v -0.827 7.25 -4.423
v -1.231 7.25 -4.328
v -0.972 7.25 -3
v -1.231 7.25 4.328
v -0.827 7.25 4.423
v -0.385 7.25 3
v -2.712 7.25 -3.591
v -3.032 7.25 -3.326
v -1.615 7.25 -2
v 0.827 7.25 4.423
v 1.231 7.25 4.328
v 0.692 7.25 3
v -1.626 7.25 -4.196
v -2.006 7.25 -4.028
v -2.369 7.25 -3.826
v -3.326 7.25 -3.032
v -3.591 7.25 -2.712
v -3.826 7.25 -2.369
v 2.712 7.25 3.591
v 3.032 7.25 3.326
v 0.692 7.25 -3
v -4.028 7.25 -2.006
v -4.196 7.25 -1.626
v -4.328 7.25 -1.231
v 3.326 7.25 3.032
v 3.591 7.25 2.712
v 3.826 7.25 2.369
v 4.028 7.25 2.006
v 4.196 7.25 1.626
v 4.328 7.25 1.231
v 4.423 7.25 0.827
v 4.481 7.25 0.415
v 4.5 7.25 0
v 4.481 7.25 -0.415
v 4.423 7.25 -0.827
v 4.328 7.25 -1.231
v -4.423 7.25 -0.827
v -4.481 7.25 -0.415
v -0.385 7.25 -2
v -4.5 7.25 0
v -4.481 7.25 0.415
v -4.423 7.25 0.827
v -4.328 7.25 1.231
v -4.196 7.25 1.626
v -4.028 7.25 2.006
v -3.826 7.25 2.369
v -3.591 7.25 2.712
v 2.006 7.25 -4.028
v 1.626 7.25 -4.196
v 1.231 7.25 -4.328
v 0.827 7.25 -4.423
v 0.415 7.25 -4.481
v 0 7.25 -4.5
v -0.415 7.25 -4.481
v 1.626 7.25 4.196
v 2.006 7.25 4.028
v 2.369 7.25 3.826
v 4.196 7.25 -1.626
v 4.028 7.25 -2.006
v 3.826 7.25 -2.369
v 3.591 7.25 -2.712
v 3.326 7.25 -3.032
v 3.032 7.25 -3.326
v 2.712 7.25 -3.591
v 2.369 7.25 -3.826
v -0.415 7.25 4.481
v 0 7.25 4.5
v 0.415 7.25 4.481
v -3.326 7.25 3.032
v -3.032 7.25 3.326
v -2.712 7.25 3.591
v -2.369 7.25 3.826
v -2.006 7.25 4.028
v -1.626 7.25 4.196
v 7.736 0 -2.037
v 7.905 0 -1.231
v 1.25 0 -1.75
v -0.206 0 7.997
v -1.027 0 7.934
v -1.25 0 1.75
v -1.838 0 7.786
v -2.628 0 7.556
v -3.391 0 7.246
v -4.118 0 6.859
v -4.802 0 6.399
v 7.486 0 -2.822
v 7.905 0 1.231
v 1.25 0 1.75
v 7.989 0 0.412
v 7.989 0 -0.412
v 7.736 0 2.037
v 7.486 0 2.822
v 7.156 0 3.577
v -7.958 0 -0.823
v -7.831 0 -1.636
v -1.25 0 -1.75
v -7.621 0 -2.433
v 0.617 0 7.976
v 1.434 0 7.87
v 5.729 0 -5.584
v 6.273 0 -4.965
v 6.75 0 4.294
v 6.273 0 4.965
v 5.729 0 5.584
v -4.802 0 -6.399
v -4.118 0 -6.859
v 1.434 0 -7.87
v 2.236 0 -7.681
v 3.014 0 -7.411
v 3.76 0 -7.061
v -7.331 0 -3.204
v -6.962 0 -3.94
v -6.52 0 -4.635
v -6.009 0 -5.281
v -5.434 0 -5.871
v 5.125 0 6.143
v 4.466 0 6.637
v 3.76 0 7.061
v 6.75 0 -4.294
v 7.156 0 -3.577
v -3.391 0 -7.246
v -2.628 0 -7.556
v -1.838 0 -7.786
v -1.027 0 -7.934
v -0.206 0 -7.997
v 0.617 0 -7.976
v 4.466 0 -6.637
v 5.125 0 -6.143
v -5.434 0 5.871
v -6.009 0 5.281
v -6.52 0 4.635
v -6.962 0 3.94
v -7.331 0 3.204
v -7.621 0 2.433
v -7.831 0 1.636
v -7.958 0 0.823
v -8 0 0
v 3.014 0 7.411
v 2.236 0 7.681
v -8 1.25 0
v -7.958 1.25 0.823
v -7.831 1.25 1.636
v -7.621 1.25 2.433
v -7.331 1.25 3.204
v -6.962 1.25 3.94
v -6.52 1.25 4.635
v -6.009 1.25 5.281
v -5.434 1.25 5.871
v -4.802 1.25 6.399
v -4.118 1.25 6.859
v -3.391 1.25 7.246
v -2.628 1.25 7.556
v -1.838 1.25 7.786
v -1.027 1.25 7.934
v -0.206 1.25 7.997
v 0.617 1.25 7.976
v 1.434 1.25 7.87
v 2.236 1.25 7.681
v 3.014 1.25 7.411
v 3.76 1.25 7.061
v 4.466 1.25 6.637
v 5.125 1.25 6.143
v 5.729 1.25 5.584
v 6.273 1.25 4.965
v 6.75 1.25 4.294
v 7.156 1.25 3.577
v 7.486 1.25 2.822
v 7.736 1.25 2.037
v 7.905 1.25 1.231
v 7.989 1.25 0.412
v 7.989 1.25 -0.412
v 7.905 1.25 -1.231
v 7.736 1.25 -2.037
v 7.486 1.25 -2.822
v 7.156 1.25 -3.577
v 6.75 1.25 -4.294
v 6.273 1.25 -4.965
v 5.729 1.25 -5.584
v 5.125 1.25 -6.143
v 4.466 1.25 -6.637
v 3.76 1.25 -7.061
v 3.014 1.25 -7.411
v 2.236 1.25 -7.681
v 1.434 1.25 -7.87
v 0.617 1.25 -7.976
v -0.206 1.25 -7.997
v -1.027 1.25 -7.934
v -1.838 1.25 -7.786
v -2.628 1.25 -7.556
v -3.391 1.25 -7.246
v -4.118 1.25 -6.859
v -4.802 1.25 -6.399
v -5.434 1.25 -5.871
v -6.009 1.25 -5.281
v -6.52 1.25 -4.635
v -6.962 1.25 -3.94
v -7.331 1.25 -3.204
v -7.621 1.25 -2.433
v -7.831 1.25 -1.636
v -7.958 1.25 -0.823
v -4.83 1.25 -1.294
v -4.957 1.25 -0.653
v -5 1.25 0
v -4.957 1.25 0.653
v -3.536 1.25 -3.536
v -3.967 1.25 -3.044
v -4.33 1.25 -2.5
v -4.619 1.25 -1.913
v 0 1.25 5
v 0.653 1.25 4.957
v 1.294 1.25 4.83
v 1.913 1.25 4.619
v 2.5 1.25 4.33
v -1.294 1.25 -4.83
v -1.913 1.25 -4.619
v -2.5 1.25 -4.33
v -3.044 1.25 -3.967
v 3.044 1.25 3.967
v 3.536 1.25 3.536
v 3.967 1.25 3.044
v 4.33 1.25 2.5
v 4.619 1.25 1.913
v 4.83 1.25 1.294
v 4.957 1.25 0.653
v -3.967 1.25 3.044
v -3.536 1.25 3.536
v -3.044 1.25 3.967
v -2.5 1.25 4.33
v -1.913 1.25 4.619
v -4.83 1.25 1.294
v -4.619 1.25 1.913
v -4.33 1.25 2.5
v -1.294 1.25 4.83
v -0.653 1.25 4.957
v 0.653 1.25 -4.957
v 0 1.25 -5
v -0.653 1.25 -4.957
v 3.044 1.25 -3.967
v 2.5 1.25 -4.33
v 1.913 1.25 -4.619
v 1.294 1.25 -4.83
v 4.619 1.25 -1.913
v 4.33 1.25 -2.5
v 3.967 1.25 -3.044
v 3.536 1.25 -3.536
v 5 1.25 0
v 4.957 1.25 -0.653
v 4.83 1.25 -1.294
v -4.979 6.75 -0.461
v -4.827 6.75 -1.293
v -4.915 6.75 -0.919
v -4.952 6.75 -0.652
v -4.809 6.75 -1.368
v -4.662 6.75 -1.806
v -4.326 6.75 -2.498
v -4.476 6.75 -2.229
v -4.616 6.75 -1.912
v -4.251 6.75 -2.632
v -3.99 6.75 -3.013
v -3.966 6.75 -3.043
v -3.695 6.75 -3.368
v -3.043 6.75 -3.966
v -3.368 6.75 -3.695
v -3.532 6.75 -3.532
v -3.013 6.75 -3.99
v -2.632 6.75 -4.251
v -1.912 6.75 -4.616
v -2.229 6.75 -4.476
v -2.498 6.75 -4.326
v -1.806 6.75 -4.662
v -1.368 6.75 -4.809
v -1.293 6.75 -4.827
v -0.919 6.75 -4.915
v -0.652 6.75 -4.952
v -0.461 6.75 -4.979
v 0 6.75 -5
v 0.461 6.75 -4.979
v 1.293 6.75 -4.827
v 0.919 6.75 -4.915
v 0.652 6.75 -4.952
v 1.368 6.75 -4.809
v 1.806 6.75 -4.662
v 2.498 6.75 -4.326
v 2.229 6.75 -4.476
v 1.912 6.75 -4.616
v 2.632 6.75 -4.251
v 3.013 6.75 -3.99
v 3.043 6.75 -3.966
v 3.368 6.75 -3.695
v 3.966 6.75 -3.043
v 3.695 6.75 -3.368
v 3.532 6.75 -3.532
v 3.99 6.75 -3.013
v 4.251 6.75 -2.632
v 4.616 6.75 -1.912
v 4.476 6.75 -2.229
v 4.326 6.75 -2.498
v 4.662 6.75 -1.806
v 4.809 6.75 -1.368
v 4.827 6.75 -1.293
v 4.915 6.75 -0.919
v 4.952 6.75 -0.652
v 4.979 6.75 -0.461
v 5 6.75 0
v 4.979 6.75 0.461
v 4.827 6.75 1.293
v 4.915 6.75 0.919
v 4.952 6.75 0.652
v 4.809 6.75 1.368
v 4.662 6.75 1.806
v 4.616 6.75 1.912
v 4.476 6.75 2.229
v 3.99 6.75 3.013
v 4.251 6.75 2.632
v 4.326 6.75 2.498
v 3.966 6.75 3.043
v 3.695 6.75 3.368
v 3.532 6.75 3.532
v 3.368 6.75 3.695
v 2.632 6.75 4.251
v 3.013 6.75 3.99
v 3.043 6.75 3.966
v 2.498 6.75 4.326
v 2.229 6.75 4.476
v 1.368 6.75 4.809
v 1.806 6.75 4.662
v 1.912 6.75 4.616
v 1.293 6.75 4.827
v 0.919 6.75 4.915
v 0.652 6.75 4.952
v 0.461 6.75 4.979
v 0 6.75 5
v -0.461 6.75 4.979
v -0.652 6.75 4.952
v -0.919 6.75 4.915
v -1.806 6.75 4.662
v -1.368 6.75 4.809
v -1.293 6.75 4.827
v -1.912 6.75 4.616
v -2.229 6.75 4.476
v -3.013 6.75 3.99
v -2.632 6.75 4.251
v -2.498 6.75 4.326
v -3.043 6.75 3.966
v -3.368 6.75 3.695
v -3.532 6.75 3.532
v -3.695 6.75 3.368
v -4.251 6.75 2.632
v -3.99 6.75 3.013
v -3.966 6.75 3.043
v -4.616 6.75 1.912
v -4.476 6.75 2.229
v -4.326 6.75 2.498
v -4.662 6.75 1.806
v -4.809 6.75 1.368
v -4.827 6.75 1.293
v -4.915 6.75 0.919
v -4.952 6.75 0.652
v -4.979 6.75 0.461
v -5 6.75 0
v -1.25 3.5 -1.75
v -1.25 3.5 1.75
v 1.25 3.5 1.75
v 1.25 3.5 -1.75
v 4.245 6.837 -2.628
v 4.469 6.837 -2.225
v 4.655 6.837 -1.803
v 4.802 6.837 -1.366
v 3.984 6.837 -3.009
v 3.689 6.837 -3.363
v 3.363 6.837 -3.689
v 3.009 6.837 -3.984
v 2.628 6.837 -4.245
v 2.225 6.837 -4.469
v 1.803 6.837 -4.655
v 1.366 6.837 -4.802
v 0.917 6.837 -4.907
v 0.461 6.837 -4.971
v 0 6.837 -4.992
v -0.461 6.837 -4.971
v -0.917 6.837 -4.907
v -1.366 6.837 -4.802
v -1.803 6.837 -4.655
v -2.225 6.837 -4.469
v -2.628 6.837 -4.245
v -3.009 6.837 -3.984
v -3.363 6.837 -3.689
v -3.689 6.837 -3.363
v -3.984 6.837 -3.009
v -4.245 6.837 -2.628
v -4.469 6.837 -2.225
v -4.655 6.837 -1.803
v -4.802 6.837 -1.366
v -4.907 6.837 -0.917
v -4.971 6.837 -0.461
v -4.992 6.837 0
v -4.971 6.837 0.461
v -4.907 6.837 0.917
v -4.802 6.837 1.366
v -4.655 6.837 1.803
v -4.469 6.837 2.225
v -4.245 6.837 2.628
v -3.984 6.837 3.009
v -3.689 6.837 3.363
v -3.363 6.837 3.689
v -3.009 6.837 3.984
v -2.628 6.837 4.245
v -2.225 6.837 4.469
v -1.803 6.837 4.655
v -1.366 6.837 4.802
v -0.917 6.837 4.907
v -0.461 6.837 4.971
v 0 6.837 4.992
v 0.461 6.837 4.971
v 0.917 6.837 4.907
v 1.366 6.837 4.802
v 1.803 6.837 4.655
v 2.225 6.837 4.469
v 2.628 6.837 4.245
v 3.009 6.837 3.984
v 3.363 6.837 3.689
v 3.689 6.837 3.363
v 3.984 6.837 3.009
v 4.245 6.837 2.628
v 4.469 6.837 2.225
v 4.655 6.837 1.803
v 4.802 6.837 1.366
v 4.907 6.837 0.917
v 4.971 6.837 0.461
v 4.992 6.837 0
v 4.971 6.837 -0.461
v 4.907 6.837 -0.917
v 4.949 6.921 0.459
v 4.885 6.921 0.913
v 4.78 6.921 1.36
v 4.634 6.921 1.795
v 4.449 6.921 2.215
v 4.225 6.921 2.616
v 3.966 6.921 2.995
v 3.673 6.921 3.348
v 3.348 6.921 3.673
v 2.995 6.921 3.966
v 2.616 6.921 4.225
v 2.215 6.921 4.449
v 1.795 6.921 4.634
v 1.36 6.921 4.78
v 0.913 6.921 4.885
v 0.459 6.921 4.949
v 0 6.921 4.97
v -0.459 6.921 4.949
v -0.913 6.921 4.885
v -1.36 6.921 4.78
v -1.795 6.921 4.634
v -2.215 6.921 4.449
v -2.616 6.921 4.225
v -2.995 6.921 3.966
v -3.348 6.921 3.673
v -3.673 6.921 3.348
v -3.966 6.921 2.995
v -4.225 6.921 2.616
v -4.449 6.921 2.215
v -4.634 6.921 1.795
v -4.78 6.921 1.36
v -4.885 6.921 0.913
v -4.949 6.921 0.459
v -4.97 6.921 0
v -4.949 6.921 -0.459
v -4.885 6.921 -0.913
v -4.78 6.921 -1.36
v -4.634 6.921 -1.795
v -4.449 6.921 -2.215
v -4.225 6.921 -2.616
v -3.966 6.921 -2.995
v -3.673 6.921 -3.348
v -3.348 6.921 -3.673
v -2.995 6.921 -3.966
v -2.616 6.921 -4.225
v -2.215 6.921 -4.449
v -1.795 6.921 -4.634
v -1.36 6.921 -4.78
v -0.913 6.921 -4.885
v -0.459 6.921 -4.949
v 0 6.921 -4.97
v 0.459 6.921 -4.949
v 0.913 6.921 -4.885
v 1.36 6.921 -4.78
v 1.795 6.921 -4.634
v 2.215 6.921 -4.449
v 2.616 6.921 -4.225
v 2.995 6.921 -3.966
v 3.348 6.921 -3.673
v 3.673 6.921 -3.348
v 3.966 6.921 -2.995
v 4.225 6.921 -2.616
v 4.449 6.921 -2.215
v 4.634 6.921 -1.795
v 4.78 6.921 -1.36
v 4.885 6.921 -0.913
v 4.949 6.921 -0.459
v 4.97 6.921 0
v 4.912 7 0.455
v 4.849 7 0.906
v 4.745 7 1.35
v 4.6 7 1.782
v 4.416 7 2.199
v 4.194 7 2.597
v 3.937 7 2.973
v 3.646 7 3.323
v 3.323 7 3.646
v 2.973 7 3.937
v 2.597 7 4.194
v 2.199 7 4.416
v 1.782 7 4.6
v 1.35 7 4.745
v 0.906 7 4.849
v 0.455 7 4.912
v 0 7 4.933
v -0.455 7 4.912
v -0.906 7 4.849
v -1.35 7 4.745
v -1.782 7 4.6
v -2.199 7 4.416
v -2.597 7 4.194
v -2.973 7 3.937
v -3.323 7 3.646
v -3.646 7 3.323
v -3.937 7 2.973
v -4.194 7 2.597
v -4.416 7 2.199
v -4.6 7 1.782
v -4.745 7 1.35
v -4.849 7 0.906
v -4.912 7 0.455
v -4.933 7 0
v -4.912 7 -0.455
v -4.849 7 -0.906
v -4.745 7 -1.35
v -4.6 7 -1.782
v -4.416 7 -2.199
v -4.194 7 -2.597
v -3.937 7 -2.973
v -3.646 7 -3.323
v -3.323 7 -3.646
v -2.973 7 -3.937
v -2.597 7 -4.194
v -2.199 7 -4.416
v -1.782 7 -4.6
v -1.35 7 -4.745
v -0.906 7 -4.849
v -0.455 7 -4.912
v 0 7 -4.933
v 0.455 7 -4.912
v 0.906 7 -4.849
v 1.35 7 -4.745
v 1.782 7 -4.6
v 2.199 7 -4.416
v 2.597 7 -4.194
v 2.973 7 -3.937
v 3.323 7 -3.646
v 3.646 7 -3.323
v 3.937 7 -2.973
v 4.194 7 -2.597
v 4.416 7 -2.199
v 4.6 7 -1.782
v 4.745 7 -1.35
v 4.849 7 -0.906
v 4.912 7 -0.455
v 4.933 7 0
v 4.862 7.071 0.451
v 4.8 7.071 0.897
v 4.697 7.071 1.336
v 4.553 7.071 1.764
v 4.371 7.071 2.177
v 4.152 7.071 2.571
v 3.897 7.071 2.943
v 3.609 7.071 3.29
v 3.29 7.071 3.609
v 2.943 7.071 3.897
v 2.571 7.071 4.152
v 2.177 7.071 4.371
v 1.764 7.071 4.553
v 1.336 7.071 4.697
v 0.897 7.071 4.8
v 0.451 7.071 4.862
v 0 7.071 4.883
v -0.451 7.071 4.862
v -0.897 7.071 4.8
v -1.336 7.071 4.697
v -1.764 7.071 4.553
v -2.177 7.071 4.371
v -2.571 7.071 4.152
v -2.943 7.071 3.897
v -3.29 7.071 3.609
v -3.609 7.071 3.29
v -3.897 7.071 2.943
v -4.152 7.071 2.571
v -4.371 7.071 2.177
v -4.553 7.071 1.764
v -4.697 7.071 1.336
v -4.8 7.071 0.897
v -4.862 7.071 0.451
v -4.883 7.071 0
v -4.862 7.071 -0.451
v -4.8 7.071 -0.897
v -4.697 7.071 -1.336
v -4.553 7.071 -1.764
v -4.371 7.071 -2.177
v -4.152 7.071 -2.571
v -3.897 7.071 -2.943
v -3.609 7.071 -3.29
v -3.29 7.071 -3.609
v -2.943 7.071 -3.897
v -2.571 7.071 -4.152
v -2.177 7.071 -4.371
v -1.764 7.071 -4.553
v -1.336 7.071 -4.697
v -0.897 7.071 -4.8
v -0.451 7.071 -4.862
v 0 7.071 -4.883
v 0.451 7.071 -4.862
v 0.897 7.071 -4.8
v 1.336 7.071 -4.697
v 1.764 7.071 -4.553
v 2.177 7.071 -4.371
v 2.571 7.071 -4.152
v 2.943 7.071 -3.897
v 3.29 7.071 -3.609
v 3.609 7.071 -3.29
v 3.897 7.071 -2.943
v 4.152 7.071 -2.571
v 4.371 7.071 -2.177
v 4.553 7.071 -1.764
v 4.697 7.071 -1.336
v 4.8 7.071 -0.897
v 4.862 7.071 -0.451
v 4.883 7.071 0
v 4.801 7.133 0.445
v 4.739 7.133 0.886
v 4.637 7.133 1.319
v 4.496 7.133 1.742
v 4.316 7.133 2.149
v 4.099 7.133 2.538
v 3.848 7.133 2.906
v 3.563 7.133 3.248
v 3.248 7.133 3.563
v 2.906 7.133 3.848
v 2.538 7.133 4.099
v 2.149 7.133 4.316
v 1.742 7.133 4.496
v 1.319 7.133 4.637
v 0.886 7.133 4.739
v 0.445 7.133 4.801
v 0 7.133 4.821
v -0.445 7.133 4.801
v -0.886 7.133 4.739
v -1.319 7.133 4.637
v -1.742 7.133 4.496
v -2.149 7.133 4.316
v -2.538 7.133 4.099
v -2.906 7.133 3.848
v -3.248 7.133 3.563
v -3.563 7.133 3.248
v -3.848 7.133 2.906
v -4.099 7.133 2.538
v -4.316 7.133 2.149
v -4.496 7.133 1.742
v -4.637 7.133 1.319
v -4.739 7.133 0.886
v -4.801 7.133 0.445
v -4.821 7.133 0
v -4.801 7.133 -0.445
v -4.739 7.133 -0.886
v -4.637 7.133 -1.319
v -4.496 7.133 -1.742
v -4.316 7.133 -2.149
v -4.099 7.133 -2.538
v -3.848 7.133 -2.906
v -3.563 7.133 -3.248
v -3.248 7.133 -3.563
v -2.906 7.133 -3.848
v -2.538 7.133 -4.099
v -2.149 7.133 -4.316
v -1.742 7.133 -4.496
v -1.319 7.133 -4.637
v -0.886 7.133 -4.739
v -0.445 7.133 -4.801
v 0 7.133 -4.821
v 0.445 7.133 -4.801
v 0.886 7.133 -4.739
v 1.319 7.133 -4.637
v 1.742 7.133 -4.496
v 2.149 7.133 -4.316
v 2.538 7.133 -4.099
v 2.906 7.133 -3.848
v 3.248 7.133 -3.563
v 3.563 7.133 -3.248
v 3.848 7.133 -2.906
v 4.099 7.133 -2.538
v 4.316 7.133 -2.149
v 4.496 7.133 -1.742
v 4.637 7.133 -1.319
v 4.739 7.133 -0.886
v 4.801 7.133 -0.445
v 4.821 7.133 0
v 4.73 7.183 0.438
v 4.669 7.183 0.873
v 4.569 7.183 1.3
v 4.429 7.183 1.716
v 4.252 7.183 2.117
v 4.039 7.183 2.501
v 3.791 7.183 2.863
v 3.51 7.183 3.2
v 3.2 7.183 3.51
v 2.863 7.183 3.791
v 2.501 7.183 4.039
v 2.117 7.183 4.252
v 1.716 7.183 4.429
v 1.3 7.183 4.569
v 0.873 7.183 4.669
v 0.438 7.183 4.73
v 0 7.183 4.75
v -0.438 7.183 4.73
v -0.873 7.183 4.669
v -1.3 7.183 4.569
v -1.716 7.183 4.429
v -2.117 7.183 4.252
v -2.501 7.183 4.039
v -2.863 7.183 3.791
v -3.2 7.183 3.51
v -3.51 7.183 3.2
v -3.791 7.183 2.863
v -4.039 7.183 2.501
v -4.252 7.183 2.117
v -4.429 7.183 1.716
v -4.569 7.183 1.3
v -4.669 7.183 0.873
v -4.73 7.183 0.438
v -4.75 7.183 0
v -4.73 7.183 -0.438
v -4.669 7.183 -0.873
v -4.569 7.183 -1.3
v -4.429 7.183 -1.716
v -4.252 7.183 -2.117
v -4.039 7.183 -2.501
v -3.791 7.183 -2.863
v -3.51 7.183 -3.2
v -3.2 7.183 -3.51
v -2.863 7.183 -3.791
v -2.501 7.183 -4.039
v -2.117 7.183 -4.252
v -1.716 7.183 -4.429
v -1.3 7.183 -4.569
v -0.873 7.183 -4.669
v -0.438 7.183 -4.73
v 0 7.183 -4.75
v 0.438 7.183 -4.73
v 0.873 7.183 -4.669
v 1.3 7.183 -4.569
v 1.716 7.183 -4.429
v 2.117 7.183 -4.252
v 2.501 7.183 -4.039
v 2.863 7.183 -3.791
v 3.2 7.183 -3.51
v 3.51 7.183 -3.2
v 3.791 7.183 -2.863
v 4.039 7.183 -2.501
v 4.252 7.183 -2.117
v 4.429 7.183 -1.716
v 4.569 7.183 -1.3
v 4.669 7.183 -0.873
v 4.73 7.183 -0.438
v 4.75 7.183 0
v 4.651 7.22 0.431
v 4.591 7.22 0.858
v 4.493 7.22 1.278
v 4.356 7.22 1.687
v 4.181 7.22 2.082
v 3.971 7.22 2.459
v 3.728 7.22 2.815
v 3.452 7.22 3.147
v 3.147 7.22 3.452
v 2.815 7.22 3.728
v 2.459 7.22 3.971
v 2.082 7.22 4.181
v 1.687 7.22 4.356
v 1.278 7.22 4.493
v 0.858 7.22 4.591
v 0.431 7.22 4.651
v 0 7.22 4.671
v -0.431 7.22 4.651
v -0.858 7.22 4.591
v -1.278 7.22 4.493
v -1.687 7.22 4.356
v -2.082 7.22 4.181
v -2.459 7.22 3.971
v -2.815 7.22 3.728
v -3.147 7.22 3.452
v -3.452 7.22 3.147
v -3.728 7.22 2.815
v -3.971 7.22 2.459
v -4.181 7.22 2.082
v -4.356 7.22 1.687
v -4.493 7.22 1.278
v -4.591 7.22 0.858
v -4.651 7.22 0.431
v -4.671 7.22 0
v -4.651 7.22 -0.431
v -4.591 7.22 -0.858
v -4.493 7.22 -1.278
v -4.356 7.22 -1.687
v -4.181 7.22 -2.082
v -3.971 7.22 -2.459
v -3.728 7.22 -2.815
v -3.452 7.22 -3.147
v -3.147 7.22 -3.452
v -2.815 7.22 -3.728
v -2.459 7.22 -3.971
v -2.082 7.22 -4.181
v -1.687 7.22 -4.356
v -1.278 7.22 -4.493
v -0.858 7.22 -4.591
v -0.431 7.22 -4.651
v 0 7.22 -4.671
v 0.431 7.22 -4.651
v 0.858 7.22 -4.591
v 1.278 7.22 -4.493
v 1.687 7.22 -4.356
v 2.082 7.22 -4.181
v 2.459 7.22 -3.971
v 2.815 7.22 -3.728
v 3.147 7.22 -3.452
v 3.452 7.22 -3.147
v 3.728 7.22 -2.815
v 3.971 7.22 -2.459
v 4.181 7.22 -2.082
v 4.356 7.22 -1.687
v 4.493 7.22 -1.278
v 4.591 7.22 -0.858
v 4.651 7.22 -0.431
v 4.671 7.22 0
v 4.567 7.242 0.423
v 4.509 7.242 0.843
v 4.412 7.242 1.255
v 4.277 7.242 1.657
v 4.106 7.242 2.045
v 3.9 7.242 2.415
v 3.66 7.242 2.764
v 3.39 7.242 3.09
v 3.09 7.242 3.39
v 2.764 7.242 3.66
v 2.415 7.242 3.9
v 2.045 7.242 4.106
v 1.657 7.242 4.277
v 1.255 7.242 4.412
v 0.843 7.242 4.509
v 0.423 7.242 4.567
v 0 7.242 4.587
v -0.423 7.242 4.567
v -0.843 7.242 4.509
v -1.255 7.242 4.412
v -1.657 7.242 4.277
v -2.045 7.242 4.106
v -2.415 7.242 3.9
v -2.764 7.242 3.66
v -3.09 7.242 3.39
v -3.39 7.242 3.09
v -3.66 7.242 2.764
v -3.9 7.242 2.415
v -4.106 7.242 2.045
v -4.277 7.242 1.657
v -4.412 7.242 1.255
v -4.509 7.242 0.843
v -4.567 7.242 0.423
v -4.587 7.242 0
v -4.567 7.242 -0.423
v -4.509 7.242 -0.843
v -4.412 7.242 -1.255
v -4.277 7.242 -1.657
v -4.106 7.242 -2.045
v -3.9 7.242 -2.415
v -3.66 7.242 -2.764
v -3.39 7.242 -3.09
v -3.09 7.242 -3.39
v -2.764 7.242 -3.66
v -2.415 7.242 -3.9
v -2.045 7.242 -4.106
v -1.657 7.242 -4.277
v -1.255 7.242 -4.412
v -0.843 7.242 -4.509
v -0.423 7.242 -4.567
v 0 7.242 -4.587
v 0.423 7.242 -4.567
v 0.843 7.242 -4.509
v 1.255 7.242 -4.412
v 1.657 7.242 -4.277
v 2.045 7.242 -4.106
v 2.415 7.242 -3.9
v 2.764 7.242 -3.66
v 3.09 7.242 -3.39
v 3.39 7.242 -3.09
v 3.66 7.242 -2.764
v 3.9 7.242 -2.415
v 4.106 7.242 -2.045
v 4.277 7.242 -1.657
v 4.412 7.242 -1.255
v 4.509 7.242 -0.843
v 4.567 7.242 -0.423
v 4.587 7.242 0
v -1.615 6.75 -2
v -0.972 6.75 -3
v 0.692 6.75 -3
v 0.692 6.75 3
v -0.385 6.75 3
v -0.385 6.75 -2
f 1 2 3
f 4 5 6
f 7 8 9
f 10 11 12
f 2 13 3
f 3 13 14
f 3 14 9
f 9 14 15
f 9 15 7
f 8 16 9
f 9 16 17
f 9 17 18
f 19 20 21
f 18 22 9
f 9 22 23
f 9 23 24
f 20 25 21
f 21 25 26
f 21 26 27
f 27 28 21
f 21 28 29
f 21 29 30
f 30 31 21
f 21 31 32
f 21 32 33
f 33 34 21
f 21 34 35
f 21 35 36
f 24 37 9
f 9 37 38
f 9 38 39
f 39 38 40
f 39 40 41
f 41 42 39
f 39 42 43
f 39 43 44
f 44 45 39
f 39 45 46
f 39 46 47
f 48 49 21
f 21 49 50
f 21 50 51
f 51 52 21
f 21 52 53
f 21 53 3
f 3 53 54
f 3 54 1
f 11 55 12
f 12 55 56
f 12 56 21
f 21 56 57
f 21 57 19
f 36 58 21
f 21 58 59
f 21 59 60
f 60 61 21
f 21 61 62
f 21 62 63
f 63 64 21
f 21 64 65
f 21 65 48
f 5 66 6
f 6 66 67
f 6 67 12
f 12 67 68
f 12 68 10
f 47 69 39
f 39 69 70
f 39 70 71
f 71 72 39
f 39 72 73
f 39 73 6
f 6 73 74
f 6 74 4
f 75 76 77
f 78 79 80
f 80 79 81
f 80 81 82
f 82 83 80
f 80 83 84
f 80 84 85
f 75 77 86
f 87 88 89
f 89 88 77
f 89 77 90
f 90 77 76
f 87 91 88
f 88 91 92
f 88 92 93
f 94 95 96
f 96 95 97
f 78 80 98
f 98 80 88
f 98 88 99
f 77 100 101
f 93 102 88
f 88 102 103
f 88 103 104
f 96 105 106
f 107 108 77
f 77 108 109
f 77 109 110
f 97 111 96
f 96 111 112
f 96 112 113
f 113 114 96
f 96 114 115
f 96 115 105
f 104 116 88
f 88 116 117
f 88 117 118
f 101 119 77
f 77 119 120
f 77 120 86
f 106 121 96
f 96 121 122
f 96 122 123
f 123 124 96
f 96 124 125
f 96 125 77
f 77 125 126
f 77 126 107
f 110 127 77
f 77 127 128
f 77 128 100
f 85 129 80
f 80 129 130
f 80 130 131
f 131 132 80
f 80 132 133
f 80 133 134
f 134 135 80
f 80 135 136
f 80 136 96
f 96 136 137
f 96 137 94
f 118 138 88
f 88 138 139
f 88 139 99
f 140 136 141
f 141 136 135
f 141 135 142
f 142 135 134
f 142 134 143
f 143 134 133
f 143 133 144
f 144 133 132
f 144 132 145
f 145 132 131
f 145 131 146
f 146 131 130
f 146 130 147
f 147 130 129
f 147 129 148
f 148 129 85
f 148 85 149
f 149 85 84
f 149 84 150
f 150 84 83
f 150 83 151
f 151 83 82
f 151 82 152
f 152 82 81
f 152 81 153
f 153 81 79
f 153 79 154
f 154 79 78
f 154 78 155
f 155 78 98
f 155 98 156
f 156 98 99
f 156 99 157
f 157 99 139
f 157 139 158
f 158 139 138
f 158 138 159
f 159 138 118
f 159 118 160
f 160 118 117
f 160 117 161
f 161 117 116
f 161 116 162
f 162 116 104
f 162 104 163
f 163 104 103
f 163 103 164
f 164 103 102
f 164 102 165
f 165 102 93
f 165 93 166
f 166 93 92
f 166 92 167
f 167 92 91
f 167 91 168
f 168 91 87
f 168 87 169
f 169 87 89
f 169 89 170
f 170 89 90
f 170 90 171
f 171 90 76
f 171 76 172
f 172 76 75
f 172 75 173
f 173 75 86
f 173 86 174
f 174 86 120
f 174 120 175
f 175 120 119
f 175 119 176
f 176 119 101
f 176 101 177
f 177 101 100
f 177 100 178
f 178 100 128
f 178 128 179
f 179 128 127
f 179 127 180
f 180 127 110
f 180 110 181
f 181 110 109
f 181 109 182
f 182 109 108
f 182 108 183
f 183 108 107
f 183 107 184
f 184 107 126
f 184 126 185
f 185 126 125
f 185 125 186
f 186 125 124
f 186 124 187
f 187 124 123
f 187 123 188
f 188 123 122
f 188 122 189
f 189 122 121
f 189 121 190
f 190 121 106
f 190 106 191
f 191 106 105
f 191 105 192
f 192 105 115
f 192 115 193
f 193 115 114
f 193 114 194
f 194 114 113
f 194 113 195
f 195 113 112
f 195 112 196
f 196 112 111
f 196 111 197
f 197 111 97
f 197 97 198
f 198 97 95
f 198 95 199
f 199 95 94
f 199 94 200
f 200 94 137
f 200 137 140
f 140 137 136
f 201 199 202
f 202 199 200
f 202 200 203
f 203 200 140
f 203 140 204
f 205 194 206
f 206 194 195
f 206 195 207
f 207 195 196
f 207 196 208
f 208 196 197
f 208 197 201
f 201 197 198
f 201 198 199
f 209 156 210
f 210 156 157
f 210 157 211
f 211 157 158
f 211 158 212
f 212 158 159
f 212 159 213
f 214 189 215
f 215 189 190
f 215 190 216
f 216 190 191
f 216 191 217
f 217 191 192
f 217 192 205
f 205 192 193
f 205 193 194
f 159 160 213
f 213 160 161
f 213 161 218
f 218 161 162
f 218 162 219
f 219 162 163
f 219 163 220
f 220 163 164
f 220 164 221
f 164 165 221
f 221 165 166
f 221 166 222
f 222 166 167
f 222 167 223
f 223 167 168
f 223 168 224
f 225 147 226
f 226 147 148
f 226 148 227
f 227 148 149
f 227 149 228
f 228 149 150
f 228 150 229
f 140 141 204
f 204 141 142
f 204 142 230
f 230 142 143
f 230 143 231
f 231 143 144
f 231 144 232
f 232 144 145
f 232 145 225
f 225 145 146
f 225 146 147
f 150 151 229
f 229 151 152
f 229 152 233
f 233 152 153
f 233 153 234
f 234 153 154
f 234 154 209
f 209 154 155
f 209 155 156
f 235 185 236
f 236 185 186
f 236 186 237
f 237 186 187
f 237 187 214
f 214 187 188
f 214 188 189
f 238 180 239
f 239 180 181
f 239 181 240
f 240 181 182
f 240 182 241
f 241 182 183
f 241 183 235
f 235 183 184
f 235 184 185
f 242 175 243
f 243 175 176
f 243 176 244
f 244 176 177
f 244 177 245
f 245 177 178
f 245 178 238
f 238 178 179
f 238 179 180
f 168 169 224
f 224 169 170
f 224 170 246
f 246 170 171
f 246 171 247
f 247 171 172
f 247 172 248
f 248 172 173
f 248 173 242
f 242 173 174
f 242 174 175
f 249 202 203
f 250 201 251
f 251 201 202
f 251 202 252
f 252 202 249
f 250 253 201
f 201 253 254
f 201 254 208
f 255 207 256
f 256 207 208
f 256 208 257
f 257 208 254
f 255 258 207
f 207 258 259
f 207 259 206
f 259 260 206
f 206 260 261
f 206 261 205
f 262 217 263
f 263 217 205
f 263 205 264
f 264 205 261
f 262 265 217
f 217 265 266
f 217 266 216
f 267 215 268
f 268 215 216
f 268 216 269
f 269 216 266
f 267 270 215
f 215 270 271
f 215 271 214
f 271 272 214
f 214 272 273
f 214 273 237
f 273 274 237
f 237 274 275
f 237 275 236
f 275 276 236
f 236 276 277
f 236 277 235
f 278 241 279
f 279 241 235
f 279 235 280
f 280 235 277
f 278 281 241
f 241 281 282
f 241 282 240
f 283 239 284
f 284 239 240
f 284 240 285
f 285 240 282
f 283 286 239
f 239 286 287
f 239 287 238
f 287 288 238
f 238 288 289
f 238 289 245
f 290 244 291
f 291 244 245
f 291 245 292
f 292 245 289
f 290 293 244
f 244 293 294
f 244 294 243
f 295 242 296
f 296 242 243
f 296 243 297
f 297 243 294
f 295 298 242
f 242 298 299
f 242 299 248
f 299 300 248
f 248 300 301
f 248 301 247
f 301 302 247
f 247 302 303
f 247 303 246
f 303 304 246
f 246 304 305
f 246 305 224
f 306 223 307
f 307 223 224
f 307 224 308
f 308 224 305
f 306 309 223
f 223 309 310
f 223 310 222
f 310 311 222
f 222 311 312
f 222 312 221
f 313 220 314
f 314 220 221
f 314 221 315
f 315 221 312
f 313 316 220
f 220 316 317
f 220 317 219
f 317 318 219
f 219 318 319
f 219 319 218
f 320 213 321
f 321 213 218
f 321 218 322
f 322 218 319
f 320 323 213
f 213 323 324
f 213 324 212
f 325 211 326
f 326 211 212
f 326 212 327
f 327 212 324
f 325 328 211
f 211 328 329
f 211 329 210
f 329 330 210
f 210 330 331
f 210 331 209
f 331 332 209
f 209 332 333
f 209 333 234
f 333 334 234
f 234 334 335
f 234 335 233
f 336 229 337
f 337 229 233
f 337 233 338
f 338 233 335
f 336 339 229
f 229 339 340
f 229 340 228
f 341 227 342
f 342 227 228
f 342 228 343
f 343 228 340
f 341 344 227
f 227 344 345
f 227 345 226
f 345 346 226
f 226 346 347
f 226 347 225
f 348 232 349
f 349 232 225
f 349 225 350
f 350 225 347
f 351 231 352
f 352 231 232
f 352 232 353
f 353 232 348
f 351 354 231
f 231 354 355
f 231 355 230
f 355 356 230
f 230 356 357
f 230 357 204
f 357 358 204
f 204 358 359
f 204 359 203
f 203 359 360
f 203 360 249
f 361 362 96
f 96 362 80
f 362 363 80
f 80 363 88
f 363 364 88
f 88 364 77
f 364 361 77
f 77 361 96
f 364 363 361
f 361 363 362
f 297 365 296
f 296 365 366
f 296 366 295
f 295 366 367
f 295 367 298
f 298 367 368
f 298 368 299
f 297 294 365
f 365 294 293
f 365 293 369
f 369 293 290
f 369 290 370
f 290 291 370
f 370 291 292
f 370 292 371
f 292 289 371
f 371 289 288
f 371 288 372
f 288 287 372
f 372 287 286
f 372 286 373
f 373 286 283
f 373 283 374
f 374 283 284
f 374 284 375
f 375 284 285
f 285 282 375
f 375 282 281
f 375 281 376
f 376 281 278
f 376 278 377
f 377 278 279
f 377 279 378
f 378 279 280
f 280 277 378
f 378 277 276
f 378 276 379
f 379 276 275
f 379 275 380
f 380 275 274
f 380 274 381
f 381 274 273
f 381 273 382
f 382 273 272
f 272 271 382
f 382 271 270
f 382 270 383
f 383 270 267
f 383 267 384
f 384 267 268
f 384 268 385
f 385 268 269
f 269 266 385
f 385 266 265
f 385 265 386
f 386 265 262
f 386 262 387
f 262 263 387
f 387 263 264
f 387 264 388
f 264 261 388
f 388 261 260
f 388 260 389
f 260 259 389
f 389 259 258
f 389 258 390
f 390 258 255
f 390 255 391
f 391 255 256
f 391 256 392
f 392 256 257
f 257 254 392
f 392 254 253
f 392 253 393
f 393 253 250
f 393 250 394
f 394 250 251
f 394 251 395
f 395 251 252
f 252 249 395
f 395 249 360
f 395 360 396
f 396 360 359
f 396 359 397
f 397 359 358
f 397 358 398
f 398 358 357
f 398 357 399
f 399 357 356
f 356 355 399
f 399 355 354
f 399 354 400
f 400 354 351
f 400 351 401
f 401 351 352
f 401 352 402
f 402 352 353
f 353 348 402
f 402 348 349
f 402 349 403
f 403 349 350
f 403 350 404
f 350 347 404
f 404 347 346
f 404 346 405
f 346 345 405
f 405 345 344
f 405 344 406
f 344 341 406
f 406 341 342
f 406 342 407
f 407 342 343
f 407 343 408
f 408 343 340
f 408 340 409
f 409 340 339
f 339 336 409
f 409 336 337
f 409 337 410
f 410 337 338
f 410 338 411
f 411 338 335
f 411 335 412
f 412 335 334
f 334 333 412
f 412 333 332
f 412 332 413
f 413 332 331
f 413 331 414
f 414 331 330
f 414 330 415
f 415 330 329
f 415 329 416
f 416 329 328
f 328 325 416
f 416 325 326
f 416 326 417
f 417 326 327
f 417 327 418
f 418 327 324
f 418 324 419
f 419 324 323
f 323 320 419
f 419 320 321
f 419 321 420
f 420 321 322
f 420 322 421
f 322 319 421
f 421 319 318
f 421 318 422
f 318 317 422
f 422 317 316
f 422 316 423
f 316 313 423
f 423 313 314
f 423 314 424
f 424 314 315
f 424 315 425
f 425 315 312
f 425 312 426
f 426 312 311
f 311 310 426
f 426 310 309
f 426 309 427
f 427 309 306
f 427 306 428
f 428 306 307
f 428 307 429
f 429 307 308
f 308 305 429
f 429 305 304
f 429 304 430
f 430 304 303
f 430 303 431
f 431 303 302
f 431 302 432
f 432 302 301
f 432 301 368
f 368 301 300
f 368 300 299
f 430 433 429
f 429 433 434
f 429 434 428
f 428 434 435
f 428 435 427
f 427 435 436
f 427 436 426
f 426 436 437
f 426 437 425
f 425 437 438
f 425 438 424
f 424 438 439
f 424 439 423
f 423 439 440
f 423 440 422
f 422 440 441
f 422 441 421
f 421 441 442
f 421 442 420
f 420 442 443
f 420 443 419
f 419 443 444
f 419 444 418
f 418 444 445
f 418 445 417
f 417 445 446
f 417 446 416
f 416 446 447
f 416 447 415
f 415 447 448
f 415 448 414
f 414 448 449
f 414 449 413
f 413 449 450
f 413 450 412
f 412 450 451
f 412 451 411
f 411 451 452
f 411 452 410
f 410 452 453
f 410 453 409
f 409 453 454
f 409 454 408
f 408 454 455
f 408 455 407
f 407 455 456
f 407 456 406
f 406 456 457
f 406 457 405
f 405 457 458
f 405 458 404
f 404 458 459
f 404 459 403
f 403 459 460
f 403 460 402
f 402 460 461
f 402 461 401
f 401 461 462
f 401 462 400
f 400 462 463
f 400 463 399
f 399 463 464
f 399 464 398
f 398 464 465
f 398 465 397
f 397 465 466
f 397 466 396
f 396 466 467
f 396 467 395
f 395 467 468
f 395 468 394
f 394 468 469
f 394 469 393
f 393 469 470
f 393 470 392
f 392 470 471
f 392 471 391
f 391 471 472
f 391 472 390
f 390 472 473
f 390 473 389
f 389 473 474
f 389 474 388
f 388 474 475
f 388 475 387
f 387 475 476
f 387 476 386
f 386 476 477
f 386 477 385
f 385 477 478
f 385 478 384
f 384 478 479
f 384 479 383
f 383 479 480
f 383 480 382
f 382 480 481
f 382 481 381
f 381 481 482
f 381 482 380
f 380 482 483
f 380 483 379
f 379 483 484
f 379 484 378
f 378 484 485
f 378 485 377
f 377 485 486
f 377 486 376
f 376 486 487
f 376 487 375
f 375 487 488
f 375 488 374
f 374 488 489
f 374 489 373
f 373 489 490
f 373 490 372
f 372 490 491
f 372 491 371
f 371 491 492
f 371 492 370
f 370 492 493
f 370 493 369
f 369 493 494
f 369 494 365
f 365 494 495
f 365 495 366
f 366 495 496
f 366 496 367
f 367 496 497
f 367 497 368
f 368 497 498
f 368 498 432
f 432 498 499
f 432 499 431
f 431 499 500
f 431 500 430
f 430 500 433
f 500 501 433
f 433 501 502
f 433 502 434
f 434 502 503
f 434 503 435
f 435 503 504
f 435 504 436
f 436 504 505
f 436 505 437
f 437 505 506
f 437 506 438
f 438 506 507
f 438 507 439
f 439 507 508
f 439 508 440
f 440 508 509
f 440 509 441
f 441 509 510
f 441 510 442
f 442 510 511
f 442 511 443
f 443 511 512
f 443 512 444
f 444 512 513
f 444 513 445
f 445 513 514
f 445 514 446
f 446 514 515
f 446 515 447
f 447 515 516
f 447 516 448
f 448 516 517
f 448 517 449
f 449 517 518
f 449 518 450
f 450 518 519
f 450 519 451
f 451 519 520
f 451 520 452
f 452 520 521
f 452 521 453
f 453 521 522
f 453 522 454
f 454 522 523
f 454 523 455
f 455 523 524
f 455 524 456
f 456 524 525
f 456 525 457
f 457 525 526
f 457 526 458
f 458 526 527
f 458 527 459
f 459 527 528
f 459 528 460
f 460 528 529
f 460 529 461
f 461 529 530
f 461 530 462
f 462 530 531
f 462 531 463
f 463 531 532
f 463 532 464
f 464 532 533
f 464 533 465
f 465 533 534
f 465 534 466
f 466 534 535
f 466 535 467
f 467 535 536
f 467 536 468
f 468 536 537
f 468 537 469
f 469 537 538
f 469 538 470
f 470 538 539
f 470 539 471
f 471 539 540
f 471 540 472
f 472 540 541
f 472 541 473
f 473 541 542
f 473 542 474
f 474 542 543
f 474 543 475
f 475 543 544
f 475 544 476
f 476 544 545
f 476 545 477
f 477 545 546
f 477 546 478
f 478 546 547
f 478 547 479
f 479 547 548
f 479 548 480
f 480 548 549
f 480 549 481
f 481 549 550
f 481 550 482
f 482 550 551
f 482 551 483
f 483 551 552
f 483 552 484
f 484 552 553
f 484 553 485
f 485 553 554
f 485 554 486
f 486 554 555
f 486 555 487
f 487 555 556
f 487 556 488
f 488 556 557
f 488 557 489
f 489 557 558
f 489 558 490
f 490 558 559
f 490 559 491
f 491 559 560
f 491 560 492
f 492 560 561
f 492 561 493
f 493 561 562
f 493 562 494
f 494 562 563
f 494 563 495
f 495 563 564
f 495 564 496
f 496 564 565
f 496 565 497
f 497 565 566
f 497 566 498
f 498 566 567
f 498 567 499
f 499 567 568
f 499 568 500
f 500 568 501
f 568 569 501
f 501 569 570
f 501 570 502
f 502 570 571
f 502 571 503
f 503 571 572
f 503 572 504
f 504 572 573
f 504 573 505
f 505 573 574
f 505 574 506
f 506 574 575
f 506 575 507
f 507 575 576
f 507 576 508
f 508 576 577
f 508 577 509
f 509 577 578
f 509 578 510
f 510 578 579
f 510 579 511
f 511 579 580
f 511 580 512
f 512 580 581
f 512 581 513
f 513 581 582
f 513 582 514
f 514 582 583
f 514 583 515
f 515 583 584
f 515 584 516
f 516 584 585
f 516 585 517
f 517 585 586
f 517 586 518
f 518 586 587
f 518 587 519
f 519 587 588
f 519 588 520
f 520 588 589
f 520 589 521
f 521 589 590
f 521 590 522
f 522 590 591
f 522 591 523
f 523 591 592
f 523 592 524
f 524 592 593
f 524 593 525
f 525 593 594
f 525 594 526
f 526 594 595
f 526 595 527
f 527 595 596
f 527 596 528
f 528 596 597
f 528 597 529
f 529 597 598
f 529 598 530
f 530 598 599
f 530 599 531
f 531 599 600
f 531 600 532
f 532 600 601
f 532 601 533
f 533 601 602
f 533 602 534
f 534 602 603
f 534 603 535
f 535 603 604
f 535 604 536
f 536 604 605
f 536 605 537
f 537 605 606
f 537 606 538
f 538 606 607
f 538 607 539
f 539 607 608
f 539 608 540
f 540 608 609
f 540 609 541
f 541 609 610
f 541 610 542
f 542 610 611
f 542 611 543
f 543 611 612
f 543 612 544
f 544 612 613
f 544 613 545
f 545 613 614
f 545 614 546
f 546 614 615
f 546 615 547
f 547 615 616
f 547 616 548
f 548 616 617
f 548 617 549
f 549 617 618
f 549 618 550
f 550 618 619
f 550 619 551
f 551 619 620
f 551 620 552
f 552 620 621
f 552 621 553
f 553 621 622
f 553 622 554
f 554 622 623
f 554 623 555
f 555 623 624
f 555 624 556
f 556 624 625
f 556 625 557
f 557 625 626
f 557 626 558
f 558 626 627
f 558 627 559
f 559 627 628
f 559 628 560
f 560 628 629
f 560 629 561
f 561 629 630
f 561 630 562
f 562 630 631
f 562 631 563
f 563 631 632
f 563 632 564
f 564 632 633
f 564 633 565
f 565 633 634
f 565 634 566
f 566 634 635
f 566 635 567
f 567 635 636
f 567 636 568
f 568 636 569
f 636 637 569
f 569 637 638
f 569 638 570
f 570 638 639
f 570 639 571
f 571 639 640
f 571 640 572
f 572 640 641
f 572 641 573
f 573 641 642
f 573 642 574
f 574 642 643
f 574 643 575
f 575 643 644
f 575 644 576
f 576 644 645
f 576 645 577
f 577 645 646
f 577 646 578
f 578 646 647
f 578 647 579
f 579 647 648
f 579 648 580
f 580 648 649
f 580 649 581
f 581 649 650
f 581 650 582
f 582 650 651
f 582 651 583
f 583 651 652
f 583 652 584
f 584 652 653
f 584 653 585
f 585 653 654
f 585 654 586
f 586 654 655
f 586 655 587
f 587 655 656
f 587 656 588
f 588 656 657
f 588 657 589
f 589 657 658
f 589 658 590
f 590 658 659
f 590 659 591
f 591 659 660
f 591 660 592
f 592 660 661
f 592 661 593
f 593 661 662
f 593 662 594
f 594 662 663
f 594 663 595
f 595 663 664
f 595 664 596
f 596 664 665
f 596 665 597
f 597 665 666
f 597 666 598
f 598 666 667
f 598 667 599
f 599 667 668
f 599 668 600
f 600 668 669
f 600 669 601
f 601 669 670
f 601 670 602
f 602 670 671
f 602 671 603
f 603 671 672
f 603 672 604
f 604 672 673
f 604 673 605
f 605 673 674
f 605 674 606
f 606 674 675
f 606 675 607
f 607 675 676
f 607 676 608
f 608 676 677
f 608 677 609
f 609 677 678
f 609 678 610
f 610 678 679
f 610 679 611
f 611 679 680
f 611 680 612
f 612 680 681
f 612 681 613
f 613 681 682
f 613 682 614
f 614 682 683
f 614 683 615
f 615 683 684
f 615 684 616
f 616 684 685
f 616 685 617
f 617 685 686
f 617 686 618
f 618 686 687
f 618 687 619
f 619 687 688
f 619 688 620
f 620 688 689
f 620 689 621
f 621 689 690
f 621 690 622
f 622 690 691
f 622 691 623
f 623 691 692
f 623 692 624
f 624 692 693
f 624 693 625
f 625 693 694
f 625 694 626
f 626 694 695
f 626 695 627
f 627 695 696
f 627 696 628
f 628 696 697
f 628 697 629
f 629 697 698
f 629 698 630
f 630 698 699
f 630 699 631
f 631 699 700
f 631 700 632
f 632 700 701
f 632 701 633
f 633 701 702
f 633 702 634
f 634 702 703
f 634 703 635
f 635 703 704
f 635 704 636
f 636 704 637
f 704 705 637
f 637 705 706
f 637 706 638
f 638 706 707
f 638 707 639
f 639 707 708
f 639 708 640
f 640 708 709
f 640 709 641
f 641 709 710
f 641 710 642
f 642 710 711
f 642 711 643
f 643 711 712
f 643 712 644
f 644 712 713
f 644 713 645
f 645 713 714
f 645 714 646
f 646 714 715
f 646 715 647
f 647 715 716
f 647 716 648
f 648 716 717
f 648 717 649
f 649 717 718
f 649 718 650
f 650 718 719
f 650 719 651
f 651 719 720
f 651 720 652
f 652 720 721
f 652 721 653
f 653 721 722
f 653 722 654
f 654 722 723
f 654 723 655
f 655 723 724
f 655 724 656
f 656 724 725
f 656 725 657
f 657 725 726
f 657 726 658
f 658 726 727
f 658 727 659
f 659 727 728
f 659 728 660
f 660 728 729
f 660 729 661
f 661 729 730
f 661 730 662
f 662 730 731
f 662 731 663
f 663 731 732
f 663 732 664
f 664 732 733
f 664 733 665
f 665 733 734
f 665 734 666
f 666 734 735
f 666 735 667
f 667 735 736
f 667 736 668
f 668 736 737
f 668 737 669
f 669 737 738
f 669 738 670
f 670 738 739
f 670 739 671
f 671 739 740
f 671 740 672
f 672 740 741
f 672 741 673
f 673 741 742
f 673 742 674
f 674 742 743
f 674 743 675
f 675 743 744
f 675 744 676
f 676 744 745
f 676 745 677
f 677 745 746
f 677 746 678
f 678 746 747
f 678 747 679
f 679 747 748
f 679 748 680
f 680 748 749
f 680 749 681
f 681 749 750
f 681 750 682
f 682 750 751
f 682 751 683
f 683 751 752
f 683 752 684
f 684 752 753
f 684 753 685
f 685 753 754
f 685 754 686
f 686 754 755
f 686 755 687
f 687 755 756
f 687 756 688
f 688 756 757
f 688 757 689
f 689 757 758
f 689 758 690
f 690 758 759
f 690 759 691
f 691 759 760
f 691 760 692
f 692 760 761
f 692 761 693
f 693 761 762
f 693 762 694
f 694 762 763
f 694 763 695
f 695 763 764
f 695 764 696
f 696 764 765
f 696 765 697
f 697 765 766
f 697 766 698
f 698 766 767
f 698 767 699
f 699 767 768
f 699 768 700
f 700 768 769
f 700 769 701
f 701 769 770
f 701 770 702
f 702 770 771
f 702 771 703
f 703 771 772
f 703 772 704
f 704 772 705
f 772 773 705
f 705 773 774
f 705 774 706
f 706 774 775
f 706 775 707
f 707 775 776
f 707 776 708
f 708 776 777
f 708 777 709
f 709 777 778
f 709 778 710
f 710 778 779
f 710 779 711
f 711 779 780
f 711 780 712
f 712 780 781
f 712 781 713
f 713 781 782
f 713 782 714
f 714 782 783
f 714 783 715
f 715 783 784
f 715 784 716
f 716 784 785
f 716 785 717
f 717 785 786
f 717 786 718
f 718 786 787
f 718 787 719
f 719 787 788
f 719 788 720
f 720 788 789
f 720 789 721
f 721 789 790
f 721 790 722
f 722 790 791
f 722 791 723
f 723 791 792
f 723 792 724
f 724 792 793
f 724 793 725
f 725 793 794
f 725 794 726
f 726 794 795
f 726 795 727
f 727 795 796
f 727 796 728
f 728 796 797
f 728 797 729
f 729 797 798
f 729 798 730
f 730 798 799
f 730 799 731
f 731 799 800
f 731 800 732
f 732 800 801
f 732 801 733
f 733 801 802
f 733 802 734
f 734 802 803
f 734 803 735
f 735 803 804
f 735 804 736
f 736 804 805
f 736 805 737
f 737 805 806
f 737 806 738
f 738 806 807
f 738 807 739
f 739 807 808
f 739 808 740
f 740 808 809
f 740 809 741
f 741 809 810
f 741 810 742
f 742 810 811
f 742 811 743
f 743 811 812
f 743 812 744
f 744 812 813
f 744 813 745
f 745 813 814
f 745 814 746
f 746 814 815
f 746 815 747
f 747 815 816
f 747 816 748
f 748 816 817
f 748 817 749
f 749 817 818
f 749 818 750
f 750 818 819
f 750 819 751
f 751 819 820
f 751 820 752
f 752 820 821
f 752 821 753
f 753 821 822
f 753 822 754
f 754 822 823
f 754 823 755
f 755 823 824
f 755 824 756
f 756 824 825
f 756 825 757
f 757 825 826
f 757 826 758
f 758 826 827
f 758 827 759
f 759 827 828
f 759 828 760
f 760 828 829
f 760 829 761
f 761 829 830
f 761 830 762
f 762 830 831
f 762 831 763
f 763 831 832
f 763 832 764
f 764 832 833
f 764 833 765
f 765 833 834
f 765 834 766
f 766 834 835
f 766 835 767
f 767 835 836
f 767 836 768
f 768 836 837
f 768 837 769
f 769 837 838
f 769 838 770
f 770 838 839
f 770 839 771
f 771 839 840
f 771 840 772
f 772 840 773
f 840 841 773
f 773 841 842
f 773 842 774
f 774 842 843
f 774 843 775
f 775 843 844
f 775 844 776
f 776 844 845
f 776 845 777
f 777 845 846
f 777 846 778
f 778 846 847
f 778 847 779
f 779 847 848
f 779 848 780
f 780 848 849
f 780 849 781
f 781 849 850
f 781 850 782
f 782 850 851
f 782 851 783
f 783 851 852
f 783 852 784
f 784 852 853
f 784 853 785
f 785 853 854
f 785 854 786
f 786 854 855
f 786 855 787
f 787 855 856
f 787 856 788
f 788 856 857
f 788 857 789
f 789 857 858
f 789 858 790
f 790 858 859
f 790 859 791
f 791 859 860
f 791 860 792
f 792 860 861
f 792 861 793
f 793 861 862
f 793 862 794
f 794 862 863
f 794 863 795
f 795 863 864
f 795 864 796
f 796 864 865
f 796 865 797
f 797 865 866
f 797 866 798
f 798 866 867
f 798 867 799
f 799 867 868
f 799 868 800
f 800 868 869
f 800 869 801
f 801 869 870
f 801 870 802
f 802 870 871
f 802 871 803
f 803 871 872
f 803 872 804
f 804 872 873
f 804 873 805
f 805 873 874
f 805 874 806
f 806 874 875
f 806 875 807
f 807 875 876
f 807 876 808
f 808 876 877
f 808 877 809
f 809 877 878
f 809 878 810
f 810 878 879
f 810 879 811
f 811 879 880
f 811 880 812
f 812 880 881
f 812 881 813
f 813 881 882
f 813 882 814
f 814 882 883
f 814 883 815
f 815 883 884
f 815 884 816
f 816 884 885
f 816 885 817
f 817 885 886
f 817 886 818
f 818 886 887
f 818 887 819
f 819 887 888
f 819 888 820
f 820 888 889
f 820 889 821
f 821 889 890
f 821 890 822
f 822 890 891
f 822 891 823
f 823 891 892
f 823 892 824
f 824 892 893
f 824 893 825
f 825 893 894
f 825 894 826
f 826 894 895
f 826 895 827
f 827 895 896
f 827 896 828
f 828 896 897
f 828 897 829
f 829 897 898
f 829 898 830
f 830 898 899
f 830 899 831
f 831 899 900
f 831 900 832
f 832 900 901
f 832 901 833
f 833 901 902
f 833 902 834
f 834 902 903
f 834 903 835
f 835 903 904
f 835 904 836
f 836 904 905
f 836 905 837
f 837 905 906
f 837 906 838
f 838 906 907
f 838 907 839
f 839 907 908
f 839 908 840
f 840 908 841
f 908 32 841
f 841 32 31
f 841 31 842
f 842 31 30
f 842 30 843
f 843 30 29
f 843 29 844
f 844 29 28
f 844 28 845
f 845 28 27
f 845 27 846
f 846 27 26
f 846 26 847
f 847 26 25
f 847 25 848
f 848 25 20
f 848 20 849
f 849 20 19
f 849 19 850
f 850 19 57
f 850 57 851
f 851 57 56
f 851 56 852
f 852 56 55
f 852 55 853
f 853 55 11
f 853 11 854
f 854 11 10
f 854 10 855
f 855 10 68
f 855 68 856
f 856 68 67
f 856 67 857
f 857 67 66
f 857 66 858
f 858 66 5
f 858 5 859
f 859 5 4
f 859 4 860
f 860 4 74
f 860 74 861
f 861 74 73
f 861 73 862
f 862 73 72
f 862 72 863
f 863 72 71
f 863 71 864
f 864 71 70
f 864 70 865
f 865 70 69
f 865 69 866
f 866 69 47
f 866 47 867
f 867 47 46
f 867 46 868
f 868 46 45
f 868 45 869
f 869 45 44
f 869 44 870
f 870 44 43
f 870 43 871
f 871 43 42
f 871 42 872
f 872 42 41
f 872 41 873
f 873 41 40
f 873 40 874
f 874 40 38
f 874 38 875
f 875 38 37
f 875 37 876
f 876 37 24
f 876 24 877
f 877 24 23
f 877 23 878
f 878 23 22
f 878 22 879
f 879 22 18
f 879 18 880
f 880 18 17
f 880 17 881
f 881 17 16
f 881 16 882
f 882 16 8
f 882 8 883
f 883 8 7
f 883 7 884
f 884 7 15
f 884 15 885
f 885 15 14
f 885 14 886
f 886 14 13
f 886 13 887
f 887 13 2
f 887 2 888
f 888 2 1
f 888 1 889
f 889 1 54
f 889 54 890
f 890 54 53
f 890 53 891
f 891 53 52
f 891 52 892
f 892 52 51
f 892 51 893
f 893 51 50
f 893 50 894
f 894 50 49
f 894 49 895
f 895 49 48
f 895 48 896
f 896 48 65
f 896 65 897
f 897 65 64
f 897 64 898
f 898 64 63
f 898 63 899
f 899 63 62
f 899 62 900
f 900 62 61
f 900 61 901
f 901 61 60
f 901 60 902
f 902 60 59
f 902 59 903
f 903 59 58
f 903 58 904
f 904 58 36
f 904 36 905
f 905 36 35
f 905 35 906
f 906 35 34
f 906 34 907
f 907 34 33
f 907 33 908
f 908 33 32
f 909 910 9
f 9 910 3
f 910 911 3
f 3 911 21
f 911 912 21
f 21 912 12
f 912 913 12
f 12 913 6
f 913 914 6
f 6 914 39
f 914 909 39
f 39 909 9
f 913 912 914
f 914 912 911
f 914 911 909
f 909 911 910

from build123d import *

# Parameters (mm, degrees)
SKETCH2_W          = 2.5
SKETCH2_H          = 3.5
CUT_EXTRUDE1_DEPTH = 3.5
FILLET1_R          = 0.5
CUT_EXTRUDE2_DEPTH = 0.5


with BuildPart() as part:
    # Sketch1 → Revolve1 (revolve)
    with BuildSketch(Plane.XY, mode=Mode.PRIVATE) as revolve1_sk:
        Polygon((0, 7.25), (5, 7.25), (5, 1.25), (8, 1.25), (8, 0), (0, 0), align=None)
    revolve(revolve1_sk.sketch.rotate(Axis((0, 7.25, 0), (0, -1, 0)), 180), axis=Axis((0, 7.25, 0), (0, -1, 0)))

    # Sketch2 → Cut-Extrude1 (cut)
    with BuildSketch(Plane.XZ):
        Rectangle(SKETCH2_W, SKETCH2_H)
    extrude(amount=-CUT_EXTRUDE1_DEPTH, mode=Mode.SUBTRACT)

    # Fillet1
    fillet1_edges = [part.edges().sort_by_distance(p)[0] for p in [
        (5, 7.25, 0),
    ]]
    fillet(fillet1_edges, radius=FILLET1_R)

    # Sketch3 → Cut-Extrude2 (cut)
    with BuildSketch(Plane(origin=(0, 7.25, 0), x_dir=(1, 0, 0), z_dir=(0, 1, 0))):
        Polygon((-0.972355769, 3), (0.692307692, 3), (0.692307692, -3), (-0.384615385, -3), (-0.384615385, 2), (-1.615384615, 2), align=None)
    extrude(amount=-CUT_EXTRUDE2_DEPTH, mode=Mode.SUBTRACT)


solid = part.part
